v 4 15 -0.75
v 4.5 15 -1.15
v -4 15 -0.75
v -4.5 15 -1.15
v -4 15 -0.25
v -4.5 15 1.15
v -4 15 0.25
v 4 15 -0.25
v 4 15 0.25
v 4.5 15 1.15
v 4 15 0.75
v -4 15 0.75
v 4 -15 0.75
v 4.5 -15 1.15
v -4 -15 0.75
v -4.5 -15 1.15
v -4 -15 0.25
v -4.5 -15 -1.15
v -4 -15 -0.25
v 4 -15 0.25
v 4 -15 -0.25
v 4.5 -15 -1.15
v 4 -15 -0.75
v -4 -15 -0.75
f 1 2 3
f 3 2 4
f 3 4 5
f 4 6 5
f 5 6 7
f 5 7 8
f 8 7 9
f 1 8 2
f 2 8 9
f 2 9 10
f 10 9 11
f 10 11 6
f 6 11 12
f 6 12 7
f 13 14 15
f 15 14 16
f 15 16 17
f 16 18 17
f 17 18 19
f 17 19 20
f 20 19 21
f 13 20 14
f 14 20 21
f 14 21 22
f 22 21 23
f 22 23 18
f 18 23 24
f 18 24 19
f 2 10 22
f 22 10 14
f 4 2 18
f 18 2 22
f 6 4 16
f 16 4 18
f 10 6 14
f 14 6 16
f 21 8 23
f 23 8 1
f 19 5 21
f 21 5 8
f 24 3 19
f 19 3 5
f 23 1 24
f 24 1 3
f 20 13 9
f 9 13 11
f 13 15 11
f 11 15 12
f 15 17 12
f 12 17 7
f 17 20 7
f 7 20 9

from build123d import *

# Parameters (mm, degrees)
SKETCH1_W           = 9
SKETCH1_H           = 2.3
BOSS_EXTRUDE1_DEPTH = 15
CUT_EXTRUDE1_START  = -31
SKETCH2_W           = 8
SKETCH2_H           = 0.5
CUT_EXTRUDE1_DEPTH  = 32


with BuildPart() as part:
    # Sketch1 → Boss-Extrude1 (new body, symmetric)
    with BuildSketch(Plane(origin=(0, 0, 0), x_dir=(1, 0, 0), z_dir=(0, 1, 0))):
        Rectangle(SKETCH1_W, SKETCH1_H)
    extrude(amount=BOSS_EXTRUDE1_DEPTH, both=True)

    # Sketch2 → Cut-Extrude1 (cut)
    with BuildSketch(Plane(origin=(0, 15, 0), x_dir=(1, 0, 0), z_dir=(0, 1, 0)).offset(CUT_EXTRUDE1_START)):
        with Locations((0, 0.5)):
            Rectangle(SKETCH2_W, SKETCH2_H)
    cut_extrude1 = extrude(amount=CUT_EXTRUDE1_DEPTH, mode=Mode.SUBTRACT)

    # Mirror1: Cut-Extrude1 across plane
    add(cut_extrude1.mirror(Plane.XY), mode=Mode.SUBTRACT)


solid = part.part
